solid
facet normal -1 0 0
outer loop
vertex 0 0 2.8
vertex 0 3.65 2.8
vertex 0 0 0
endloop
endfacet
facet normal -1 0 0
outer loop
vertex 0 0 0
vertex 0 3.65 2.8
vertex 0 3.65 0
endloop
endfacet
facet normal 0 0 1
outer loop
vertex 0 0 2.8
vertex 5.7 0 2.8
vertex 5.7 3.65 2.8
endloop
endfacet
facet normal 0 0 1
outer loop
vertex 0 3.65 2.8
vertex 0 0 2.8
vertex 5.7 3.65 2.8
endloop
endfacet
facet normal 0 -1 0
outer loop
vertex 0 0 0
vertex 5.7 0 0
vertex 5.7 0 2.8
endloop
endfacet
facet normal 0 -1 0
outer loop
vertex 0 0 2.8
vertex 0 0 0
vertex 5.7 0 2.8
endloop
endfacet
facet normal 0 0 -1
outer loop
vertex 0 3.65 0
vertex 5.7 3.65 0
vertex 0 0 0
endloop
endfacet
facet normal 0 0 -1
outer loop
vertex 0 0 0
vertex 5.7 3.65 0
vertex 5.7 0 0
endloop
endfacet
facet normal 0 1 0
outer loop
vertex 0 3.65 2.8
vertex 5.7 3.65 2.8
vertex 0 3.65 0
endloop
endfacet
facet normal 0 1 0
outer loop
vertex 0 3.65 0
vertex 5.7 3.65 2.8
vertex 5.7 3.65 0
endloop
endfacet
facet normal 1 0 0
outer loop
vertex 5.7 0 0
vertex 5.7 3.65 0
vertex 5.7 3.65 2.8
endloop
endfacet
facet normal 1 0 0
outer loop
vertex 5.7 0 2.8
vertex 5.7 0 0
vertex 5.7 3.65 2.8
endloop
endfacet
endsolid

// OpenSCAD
length=5.7;
height=3.65;
thickness=2.8;


module wirehub(length=5.7, height=3.65,thickness=2.8);
{
	cube([length,height,thickness]);
}
